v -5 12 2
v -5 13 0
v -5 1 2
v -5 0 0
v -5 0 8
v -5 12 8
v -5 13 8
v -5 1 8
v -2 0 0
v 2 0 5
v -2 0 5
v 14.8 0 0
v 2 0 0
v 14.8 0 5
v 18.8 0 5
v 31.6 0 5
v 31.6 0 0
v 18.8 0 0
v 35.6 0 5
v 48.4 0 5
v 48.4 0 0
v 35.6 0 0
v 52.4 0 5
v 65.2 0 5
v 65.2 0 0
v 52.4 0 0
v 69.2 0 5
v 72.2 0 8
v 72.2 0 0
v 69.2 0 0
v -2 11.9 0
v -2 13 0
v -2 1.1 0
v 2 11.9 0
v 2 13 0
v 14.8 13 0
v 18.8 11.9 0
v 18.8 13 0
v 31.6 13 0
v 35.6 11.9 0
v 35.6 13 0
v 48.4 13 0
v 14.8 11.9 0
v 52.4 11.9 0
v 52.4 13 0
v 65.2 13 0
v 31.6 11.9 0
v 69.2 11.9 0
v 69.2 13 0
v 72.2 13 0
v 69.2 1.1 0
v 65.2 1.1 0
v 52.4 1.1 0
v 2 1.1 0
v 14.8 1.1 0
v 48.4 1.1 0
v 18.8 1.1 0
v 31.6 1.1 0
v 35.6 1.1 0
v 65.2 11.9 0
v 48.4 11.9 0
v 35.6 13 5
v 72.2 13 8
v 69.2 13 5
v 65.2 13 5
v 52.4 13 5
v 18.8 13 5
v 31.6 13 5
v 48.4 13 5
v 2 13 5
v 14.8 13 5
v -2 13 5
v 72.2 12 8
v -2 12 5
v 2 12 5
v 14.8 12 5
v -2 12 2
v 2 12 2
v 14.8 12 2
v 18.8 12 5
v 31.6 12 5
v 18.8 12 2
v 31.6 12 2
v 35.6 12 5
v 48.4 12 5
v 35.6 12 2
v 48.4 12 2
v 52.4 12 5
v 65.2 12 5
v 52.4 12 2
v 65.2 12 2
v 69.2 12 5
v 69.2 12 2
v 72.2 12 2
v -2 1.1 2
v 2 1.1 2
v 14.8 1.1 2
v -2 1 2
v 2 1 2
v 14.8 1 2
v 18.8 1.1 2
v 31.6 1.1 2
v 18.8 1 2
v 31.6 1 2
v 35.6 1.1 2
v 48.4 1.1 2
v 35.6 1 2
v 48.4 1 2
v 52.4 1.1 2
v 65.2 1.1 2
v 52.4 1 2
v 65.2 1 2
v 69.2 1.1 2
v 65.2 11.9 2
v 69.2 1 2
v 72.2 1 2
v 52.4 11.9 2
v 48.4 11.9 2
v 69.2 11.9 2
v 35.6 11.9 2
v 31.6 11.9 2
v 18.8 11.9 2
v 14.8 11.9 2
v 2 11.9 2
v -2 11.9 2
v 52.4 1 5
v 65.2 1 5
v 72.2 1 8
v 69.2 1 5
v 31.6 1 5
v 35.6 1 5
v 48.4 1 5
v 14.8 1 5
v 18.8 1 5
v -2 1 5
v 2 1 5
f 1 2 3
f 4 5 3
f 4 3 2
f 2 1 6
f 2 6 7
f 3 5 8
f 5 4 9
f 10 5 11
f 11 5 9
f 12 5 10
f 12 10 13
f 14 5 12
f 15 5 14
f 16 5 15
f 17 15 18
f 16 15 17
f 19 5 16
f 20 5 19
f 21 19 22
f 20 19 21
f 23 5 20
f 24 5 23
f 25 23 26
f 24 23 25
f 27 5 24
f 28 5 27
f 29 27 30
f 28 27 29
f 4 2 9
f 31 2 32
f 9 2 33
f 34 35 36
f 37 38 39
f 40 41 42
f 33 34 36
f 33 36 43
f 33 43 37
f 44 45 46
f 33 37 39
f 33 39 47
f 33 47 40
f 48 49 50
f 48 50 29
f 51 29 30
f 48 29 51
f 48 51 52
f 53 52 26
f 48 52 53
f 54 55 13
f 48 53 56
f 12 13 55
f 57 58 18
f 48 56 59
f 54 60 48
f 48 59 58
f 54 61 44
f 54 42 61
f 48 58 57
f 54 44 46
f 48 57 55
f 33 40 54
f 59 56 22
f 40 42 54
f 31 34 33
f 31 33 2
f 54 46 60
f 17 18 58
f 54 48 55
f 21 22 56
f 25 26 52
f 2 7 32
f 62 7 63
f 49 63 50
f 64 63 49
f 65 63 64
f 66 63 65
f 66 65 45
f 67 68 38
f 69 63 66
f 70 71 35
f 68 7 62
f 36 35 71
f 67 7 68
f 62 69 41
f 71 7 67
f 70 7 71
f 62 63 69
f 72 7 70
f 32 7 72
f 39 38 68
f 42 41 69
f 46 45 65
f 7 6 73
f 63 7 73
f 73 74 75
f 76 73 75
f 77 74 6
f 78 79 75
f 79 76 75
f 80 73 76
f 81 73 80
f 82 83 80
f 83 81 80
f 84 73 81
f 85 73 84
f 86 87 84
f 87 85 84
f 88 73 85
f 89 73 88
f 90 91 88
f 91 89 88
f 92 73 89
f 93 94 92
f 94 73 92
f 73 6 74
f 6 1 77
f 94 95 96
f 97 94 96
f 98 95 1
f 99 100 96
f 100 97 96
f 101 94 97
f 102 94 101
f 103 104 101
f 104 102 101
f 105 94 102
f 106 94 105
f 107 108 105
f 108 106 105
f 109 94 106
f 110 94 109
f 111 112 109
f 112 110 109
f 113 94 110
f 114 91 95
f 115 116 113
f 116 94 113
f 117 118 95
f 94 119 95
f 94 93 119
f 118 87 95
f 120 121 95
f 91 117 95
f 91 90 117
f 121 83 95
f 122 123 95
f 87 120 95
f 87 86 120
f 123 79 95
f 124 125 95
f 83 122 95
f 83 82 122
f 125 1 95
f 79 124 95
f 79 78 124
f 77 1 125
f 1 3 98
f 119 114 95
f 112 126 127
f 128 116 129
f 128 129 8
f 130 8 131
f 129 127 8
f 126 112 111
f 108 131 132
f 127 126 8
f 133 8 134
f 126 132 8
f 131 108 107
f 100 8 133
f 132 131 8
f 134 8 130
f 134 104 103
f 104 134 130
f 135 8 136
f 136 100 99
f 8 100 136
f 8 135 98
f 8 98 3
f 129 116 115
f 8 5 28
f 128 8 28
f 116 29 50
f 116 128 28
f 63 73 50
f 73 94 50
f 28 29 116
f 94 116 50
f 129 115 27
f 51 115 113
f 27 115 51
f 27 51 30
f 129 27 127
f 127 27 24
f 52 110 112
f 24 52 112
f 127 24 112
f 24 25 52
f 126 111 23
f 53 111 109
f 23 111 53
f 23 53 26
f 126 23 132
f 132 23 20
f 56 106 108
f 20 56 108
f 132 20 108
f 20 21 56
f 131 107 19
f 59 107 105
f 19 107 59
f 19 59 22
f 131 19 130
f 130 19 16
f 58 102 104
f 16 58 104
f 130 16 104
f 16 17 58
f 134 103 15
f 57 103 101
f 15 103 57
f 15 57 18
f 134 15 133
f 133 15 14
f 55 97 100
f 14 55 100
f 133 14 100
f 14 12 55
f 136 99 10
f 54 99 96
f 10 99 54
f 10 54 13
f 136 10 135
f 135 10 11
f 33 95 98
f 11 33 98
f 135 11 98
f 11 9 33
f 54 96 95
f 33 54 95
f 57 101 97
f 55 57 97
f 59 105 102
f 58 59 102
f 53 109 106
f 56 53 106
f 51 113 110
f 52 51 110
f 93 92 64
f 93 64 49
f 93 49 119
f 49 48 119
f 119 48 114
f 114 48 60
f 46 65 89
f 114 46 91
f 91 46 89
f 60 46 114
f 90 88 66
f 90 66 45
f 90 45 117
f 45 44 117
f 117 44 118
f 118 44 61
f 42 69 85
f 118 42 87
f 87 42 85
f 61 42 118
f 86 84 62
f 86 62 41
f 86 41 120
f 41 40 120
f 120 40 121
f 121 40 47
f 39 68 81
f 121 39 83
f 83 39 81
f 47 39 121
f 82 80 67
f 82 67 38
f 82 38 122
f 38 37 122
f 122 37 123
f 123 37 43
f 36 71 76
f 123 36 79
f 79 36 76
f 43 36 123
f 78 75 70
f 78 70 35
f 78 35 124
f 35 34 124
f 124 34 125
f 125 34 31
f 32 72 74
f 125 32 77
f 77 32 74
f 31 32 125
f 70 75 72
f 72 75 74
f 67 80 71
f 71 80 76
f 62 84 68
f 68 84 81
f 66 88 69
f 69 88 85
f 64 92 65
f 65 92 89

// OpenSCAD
led_count=4;
strip_width=11;
strip_height=3;
between_cut_lines=16.8;

visor_width=1;
visor_height=6;
base_height=2;

pad=0.1;
padd=pad*2;

zip_width=4;
//solid piece above zip ties
zip_gap=3;
zip_step=1;

end_cap=5;

length=between_cut_lines*led_count+end_cap*2;

module anti_cap() {
    translate([-end_cap-pad,-pad,-pad])
    cube([pad+end_cap*2,strip_width+padd+visor_width*2,visor_height+base_height+padd]);
}

difference() {
    translate([-end_cap,0,0]) 
    cube([length,strip_width+visor_width*2,visor_height+base_height]);
    translate([-pad-end_cap,visor_width,base_height])
    union() {
        cube([length+padd,strip_width,visor_height+pad]);
        #cube([length+padd,strip_width,strip_height]);
    }
    

    for (i=[0:zip_step:led_count]) {
        translate([-zip_width/2+between_cut_lines*i,-pad,-pad]) {
            cube([zip_width,visor_width+padd,visor_height+base_height-zip_gap+pad]);
            translate([0,strip_width+visor_width,0])
            cube([zip_width,visor_width+padd,visor_height+base_height-zip_gap+pad]);
        }
    }

    //anti_cap();
}
